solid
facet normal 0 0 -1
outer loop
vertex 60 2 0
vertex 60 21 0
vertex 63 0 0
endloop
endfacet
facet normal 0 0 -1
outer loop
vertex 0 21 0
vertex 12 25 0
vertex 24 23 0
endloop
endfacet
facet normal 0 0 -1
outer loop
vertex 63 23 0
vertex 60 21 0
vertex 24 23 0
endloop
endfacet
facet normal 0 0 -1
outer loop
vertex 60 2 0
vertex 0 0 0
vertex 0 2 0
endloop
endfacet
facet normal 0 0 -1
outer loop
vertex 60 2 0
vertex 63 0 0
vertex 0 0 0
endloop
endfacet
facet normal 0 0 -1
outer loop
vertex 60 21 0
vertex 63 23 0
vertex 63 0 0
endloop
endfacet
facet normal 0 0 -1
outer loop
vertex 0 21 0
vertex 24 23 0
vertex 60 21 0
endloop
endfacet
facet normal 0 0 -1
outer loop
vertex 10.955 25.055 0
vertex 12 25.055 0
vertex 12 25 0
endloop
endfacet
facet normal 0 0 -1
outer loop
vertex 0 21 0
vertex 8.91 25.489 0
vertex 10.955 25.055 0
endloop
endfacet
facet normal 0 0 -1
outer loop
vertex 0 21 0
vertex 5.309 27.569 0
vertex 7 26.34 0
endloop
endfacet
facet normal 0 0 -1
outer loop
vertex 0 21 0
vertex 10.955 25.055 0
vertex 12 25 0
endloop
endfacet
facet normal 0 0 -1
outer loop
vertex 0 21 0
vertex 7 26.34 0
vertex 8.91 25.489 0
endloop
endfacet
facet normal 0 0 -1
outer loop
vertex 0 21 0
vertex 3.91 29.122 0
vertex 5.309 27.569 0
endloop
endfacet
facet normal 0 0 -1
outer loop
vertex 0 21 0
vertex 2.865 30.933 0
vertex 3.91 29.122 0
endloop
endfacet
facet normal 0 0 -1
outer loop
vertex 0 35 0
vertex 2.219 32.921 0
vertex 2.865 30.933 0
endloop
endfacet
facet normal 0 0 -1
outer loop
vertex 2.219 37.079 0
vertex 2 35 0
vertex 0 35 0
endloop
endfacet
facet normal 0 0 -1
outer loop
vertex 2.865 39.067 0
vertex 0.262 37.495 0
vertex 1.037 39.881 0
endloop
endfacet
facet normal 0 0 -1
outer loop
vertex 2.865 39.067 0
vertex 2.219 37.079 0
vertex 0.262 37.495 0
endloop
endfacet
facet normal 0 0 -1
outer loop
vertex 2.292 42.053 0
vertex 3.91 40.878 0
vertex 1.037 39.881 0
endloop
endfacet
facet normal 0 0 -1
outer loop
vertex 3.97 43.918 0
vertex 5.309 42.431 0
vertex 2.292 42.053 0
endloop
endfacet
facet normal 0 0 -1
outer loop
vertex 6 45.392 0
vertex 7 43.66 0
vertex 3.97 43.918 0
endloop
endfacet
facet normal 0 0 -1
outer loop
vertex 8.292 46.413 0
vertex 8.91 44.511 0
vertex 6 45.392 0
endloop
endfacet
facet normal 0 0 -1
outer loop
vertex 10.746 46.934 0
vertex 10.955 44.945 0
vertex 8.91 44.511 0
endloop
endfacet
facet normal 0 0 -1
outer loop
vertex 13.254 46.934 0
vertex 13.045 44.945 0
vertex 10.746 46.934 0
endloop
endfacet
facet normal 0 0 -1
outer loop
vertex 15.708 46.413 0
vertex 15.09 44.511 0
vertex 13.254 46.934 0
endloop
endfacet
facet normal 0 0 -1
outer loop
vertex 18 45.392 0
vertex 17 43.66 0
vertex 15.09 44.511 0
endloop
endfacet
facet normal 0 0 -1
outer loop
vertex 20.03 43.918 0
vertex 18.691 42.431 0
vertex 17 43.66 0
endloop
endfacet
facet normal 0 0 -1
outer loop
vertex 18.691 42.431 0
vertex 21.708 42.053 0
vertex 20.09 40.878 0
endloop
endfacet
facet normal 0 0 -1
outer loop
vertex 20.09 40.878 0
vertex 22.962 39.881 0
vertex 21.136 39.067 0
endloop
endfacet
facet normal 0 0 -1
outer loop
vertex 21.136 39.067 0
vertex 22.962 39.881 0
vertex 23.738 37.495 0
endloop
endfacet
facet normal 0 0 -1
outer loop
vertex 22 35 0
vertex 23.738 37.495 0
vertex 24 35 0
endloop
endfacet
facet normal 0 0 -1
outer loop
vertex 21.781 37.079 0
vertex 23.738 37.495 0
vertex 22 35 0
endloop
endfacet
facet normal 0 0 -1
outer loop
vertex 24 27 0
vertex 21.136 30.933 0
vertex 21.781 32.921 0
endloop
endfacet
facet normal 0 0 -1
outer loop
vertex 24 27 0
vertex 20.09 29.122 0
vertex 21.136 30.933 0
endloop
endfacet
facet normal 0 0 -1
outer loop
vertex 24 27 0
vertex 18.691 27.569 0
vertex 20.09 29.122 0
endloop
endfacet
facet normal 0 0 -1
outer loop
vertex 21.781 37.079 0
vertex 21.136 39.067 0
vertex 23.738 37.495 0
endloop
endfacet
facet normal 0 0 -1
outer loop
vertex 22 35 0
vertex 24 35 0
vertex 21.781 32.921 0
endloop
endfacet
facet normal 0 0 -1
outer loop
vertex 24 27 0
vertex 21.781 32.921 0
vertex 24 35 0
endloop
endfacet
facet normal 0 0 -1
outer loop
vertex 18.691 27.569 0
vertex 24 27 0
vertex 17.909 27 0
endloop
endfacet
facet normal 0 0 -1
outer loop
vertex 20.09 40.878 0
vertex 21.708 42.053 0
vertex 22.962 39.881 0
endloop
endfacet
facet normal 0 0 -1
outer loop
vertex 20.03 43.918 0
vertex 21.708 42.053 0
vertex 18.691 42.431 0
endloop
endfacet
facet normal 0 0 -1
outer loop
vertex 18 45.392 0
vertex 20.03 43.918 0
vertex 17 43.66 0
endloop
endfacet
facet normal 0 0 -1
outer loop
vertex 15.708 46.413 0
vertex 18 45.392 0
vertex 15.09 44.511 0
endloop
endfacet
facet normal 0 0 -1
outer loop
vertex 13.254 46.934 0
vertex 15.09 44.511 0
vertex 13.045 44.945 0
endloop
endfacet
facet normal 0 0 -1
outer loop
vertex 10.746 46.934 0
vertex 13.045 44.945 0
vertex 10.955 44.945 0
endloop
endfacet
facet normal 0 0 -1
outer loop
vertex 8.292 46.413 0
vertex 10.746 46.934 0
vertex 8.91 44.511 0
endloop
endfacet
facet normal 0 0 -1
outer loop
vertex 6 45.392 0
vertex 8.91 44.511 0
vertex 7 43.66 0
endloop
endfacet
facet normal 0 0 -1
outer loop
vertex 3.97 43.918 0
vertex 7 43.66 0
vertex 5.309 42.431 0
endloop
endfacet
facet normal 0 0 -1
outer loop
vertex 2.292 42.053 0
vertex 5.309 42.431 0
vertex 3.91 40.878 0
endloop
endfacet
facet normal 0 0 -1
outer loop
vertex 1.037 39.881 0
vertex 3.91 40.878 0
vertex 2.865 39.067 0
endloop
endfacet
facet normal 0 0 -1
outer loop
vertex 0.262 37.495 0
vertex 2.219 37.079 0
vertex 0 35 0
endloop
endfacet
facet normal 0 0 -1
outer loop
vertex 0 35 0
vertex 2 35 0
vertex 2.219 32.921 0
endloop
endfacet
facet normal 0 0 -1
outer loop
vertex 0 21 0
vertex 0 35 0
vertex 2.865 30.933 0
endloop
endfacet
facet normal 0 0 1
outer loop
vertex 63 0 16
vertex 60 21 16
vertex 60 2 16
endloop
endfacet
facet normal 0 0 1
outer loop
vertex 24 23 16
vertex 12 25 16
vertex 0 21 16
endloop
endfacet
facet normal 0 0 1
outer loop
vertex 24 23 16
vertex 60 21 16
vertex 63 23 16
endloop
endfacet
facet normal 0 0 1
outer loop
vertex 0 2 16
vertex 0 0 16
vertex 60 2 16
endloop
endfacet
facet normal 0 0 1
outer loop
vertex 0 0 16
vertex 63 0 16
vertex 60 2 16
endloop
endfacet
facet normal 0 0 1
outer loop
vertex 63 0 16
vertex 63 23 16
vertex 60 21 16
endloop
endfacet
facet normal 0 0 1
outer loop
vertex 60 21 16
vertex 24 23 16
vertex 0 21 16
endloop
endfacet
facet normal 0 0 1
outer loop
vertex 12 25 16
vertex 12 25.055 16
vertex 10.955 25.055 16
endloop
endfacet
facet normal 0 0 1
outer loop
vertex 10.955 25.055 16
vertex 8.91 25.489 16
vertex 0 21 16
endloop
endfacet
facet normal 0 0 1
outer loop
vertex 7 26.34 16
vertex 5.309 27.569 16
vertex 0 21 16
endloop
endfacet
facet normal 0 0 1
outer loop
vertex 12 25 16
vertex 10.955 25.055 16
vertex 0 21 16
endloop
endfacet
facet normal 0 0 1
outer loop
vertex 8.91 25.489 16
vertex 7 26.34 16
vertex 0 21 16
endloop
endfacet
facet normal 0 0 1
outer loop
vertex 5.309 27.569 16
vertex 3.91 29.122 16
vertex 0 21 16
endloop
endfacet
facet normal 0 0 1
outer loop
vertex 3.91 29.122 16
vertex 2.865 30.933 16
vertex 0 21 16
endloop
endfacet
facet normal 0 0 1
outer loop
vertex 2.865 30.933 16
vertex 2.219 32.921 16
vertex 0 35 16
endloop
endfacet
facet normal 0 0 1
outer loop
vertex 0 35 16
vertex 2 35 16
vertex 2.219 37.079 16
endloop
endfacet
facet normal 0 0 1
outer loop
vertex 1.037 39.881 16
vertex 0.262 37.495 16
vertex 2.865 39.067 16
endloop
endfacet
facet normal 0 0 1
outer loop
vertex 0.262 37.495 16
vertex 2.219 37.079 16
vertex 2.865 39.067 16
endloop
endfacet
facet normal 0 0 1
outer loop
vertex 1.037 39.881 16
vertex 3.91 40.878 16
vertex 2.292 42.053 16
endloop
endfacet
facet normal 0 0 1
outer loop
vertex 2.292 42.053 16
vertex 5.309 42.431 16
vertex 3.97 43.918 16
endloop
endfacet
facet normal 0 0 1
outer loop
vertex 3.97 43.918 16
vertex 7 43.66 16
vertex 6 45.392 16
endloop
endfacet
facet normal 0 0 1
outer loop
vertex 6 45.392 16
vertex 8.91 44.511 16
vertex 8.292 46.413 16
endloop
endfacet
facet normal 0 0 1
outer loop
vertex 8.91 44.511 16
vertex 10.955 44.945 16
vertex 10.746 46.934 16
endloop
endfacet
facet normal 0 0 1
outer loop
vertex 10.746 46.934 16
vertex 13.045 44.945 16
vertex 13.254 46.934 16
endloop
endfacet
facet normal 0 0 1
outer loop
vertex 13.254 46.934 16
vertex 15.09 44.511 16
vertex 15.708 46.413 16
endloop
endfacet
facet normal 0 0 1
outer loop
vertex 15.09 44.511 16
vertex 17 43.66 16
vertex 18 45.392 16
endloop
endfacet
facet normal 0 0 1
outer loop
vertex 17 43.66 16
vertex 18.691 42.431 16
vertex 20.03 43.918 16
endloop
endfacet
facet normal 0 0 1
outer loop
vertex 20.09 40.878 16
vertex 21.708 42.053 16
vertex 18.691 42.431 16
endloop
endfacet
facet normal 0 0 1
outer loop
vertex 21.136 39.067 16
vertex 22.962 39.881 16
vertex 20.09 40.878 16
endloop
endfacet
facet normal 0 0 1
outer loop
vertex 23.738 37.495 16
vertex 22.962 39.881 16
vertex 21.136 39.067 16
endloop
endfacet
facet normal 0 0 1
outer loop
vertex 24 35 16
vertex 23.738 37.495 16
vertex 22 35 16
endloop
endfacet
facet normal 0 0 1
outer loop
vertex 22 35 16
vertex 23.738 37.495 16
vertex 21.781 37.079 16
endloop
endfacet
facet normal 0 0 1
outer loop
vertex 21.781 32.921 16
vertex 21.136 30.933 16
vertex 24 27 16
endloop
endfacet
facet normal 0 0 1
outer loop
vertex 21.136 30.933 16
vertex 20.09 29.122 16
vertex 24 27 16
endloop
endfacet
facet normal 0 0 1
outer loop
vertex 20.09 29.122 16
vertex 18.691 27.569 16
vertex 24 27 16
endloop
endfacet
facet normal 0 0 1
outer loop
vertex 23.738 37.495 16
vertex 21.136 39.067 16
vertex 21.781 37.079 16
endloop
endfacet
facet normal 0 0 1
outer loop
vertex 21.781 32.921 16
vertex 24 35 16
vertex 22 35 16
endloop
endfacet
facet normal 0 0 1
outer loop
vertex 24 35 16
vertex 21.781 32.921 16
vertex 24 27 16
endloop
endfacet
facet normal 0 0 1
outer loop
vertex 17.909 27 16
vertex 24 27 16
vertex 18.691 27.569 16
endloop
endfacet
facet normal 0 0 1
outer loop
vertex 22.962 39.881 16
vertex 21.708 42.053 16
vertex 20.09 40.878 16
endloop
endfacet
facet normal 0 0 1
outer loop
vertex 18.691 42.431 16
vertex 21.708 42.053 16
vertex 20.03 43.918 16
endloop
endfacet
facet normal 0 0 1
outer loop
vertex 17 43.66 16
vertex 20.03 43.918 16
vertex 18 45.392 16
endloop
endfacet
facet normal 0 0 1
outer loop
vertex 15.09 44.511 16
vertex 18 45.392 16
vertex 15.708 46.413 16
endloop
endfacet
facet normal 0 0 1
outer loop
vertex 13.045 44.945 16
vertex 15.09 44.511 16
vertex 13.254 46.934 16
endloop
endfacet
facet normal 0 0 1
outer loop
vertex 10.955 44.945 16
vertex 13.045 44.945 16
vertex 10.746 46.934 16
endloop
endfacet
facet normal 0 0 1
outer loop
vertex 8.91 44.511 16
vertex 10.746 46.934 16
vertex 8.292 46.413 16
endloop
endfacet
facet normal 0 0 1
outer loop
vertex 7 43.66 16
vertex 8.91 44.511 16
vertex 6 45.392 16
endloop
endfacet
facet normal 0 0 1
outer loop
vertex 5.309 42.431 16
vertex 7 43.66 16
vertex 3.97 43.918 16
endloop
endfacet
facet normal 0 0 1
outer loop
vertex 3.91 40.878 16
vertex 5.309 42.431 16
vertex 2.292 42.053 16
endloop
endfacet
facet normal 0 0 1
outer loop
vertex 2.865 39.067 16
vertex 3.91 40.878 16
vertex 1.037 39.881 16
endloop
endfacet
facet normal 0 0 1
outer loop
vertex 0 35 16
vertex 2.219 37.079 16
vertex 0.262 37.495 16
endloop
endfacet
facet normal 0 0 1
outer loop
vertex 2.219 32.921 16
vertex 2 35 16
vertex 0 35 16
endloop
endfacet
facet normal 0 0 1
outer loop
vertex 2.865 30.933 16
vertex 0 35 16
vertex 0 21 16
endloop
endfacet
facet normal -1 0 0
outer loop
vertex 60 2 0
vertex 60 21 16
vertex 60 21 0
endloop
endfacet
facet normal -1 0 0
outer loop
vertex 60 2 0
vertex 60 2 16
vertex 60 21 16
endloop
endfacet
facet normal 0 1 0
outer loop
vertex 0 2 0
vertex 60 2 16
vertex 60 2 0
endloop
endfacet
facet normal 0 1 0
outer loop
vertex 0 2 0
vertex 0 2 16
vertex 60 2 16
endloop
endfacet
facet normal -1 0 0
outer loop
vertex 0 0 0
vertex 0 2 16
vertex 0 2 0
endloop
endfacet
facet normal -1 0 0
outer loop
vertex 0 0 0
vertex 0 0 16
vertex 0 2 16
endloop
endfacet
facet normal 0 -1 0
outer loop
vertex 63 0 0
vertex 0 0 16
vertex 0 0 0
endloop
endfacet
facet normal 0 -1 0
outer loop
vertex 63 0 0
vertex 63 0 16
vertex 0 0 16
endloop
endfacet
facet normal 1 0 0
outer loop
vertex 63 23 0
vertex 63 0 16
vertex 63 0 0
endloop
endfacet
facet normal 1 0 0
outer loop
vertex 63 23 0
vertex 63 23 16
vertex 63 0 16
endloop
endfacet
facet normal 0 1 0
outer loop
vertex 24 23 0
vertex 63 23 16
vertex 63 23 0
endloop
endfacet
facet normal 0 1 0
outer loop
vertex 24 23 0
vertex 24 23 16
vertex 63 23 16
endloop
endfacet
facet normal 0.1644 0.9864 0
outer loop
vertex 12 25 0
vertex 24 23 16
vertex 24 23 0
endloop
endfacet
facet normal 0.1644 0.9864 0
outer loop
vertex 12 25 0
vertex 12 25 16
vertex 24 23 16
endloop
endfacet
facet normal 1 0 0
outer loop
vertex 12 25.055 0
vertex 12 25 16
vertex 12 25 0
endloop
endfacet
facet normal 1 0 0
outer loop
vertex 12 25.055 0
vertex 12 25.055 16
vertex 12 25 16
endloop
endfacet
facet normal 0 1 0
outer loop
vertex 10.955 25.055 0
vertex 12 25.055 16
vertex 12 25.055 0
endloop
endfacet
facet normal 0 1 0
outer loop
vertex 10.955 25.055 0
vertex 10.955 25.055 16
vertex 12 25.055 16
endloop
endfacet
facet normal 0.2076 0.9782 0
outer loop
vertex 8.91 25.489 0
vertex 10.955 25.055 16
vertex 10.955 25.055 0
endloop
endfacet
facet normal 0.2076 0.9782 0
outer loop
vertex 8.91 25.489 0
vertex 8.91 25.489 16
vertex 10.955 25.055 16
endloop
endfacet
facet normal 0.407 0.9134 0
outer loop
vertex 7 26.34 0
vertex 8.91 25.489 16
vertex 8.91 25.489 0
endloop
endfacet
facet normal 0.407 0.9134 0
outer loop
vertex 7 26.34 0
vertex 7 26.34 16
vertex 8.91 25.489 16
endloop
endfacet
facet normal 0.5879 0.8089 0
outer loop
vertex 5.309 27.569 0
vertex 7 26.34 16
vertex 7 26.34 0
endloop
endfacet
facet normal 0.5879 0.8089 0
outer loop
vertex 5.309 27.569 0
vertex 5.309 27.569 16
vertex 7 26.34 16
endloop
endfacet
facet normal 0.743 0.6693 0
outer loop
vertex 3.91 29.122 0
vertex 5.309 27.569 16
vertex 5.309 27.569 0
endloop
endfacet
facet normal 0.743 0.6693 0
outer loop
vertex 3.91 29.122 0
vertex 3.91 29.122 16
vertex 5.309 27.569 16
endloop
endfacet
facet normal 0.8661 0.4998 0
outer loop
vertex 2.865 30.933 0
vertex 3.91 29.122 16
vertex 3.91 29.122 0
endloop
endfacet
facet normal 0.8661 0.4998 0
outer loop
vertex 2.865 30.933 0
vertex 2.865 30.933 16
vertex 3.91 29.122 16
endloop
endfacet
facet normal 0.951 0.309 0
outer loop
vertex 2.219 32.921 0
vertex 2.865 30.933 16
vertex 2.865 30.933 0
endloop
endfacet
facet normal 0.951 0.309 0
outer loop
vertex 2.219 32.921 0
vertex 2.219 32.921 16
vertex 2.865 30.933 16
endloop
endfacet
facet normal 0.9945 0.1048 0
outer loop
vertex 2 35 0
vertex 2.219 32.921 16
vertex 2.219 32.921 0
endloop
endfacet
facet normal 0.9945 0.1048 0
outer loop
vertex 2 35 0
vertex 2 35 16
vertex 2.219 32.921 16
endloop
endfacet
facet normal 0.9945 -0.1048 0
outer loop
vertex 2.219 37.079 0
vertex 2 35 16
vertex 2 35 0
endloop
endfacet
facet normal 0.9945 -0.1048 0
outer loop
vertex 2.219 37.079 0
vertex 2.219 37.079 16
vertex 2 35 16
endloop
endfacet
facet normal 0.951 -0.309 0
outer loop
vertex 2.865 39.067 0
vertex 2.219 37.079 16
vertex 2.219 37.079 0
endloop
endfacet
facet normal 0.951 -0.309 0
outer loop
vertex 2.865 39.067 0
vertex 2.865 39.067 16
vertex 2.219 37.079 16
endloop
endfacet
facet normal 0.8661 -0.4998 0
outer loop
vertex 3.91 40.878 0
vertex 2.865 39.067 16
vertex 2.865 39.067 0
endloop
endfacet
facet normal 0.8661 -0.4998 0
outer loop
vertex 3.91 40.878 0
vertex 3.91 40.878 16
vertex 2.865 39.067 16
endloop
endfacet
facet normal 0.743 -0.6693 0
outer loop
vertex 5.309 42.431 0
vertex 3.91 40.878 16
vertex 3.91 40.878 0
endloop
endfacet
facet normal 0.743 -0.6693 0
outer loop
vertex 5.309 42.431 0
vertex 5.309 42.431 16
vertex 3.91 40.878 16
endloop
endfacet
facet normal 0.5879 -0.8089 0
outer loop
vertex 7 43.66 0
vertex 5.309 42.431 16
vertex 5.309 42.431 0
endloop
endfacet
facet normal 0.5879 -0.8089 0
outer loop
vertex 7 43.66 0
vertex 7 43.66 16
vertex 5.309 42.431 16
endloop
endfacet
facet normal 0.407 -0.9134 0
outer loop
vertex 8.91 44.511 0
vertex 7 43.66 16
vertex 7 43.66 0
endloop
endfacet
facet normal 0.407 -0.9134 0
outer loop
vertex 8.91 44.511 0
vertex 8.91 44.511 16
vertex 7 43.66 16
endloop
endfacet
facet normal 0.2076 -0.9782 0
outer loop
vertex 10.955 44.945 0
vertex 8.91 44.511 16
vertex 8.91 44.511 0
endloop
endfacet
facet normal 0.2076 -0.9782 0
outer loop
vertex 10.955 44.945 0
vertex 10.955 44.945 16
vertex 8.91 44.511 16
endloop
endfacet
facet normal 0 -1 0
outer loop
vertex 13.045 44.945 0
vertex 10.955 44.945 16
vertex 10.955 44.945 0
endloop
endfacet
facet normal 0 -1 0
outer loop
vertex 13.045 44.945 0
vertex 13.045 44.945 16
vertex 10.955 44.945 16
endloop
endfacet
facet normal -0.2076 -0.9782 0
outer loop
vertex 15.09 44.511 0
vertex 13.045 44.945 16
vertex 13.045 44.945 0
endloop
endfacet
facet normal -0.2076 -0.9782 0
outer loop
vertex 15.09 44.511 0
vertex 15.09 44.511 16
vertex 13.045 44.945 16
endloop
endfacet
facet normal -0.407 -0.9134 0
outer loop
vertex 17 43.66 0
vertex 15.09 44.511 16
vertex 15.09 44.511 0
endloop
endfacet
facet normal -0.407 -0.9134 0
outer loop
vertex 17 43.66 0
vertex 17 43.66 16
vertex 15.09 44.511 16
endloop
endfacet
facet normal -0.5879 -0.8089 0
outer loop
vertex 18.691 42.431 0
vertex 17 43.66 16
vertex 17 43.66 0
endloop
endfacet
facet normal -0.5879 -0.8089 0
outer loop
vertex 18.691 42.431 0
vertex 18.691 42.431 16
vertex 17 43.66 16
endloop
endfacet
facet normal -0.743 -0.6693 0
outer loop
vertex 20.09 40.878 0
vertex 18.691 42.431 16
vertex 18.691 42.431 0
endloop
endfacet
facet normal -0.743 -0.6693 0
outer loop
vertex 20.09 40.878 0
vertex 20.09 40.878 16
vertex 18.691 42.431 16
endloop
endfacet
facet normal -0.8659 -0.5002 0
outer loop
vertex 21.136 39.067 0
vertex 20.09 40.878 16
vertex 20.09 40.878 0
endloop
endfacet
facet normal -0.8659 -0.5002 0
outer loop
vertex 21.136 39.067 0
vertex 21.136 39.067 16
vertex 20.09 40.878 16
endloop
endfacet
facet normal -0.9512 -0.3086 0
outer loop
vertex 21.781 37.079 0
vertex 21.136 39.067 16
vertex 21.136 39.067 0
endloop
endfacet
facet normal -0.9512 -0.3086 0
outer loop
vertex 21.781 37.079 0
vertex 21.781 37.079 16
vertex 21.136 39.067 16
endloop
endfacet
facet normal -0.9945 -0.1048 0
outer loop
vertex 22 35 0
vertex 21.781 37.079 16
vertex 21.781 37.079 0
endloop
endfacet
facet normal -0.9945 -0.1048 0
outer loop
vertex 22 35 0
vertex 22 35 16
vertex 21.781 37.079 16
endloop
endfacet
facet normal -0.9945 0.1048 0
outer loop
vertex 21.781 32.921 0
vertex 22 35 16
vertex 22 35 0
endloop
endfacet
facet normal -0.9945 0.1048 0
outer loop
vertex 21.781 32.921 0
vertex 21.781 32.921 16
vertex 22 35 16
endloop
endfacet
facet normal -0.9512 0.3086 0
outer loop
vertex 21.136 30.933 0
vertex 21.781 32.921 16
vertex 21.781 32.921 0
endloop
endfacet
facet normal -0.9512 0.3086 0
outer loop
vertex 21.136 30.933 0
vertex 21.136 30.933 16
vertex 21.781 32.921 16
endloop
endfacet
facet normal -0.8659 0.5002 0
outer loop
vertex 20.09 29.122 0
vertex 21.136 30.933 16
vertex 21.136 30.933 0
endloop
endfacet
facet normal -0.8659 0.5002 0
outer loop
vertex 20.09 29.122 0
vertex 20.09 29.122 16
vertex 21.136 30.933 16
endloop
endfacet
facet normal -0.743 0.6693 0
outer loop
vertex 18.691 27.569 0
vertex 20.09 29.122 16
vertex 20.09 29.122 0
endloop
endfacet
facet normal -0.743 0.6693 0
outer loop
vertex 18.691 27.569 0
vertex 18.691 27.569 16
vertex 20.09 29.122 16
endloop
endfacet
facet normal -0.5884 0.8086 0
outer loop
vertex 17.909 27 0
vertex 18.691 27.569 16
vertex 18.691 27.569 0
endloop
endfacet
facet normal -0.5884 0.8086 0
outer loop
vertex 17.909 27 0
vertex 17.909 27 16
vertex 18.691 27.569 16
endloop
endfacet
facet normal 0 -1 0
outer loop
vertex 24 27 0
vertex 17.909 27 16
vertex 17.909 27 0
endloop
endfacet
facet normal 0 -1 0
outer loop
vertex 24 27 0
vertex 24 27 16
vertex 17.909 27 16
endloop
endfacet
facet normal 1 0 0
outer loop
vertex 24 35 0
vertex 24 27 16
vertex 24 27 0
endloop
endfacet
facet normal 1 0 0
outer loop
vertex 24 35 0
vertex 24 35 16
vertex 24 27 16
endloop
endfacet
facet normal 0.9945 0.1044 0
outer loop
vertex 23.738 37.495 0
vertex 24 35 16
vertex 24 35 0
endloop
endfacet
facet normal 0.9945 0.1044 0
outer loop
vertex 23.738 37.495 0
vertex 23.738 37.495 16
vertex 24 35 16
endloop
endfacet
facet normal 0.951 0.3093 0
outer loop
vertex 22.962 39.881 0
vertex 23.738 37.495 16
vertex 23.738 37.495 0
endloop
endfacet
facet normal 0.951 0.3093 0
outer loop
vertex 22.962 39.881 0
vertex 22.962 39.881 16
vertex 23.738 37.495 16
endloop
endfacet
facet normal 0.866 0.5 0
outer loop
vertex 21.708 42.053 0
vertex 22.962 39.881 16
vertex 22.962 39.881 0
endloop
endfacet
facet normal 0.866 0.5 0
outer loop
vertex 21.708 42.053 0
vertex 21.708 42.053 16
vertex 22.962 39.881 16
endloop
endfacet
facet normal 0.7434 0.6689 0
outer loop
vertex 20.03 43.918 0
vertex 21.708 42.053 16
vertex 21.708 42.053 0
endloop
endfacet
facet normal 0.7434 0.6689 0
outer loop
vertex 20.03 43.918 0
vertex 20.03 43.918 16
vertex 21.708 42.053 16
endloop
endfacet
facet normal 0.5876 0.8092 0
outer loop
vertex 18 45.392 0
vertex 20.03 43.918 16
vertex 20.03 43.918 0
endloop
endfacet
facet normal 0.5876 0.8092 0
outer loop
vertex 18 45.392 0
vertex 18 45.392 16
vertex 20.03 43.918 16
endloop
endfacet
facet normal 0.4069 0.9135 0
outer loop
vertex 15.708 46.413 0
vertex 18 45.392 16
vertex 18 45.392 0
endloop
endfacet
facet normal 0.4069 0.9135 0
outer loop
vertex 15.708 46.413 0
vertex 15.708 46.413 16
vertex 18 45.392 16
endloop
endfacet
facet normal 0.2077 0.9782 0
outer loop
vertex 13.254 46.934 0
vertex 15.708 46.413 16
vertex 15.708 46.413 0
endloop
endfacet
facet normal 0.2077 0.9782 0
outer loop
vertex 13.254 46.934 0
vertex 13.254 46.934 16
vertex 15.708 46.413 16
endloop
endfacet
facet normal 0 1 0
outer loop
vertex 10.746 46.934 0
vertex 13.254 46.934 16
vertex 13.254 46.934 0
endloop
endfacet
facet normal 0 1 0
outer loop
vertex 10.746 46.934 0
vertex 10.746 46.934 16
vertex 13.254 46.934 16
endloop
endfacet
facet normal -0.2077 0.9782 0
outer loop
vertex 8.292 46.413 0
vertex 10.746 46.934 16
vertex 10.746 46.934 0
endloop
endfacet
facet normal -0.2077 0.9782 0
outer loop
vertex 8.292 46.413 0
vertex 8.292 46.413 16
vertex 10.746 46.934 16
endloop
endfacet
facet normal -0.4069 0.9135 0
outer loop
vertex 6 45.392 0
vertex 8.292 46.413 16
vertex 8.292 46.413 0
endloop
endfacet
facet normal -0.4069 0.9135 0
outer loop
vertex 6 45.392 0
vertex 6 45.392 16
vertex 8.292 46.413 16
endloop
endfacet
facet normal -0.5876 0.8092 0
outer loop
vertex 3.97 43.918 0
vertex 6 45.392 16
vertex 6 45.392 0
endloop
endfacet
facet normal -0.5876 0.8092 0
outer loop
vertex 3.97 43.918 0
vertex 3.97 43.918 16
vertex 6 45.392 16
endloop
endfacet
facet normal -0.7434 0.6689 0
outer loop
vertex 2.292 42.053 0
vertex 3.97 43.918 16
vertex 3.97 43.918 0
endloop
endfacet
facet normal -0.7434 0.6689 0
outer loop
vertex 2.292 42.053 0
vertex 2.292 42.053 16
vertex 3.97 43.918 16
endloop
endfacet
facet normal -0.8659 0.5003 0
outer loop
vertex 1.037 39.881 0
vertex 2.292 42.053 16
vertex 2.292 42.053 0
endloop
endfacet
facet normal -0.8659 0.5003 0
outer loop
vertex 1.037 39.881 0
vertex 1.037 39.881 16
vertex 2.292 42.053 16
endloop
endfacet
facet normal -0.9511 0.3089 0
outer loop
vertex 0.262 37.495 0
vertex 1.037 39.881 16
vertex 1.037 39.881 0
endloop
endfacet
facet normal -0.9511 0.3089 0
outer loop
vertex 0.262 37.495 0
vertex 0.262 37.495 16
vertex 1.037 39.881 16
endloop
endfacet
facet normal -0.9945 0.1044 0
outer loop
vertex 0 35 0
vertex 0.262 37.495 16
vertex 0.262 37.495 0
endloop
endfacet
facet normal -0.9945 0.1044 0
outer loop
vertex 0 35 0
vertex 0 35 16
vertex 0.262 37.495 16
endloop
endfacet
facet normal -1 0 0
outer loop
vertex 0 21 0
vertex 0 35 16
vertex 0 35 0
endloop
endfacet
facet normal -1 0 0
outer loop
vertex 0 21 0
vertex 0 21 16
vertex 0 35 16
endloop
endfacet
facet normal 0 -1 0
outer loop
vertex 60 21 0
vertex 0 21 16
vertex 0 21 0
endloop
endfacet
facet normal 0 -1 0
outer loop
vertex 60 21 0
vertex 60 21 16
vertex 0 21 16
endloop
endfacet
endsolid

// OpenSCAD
linear_extrude(16){
    union() {
        difference() {
            polygon([[0,0],[63,0],[63,23],[0,23]]);
            polygon([[0,2],[60,2],[60,21],[0,21]]);
        }
        translate([0,23]) {
            difference(){
                union(){
                    polygon([[0,0],[0,12],[24,12],[24,0]]);
                    translate([12,12]) {
                        circle(12);
                    }
                }
                translate([12,12]) {
                        circle(10);
                }
                polygon([[24,0],[12,2],[12,4],[24,4]]);
            }
        }
    }
}
